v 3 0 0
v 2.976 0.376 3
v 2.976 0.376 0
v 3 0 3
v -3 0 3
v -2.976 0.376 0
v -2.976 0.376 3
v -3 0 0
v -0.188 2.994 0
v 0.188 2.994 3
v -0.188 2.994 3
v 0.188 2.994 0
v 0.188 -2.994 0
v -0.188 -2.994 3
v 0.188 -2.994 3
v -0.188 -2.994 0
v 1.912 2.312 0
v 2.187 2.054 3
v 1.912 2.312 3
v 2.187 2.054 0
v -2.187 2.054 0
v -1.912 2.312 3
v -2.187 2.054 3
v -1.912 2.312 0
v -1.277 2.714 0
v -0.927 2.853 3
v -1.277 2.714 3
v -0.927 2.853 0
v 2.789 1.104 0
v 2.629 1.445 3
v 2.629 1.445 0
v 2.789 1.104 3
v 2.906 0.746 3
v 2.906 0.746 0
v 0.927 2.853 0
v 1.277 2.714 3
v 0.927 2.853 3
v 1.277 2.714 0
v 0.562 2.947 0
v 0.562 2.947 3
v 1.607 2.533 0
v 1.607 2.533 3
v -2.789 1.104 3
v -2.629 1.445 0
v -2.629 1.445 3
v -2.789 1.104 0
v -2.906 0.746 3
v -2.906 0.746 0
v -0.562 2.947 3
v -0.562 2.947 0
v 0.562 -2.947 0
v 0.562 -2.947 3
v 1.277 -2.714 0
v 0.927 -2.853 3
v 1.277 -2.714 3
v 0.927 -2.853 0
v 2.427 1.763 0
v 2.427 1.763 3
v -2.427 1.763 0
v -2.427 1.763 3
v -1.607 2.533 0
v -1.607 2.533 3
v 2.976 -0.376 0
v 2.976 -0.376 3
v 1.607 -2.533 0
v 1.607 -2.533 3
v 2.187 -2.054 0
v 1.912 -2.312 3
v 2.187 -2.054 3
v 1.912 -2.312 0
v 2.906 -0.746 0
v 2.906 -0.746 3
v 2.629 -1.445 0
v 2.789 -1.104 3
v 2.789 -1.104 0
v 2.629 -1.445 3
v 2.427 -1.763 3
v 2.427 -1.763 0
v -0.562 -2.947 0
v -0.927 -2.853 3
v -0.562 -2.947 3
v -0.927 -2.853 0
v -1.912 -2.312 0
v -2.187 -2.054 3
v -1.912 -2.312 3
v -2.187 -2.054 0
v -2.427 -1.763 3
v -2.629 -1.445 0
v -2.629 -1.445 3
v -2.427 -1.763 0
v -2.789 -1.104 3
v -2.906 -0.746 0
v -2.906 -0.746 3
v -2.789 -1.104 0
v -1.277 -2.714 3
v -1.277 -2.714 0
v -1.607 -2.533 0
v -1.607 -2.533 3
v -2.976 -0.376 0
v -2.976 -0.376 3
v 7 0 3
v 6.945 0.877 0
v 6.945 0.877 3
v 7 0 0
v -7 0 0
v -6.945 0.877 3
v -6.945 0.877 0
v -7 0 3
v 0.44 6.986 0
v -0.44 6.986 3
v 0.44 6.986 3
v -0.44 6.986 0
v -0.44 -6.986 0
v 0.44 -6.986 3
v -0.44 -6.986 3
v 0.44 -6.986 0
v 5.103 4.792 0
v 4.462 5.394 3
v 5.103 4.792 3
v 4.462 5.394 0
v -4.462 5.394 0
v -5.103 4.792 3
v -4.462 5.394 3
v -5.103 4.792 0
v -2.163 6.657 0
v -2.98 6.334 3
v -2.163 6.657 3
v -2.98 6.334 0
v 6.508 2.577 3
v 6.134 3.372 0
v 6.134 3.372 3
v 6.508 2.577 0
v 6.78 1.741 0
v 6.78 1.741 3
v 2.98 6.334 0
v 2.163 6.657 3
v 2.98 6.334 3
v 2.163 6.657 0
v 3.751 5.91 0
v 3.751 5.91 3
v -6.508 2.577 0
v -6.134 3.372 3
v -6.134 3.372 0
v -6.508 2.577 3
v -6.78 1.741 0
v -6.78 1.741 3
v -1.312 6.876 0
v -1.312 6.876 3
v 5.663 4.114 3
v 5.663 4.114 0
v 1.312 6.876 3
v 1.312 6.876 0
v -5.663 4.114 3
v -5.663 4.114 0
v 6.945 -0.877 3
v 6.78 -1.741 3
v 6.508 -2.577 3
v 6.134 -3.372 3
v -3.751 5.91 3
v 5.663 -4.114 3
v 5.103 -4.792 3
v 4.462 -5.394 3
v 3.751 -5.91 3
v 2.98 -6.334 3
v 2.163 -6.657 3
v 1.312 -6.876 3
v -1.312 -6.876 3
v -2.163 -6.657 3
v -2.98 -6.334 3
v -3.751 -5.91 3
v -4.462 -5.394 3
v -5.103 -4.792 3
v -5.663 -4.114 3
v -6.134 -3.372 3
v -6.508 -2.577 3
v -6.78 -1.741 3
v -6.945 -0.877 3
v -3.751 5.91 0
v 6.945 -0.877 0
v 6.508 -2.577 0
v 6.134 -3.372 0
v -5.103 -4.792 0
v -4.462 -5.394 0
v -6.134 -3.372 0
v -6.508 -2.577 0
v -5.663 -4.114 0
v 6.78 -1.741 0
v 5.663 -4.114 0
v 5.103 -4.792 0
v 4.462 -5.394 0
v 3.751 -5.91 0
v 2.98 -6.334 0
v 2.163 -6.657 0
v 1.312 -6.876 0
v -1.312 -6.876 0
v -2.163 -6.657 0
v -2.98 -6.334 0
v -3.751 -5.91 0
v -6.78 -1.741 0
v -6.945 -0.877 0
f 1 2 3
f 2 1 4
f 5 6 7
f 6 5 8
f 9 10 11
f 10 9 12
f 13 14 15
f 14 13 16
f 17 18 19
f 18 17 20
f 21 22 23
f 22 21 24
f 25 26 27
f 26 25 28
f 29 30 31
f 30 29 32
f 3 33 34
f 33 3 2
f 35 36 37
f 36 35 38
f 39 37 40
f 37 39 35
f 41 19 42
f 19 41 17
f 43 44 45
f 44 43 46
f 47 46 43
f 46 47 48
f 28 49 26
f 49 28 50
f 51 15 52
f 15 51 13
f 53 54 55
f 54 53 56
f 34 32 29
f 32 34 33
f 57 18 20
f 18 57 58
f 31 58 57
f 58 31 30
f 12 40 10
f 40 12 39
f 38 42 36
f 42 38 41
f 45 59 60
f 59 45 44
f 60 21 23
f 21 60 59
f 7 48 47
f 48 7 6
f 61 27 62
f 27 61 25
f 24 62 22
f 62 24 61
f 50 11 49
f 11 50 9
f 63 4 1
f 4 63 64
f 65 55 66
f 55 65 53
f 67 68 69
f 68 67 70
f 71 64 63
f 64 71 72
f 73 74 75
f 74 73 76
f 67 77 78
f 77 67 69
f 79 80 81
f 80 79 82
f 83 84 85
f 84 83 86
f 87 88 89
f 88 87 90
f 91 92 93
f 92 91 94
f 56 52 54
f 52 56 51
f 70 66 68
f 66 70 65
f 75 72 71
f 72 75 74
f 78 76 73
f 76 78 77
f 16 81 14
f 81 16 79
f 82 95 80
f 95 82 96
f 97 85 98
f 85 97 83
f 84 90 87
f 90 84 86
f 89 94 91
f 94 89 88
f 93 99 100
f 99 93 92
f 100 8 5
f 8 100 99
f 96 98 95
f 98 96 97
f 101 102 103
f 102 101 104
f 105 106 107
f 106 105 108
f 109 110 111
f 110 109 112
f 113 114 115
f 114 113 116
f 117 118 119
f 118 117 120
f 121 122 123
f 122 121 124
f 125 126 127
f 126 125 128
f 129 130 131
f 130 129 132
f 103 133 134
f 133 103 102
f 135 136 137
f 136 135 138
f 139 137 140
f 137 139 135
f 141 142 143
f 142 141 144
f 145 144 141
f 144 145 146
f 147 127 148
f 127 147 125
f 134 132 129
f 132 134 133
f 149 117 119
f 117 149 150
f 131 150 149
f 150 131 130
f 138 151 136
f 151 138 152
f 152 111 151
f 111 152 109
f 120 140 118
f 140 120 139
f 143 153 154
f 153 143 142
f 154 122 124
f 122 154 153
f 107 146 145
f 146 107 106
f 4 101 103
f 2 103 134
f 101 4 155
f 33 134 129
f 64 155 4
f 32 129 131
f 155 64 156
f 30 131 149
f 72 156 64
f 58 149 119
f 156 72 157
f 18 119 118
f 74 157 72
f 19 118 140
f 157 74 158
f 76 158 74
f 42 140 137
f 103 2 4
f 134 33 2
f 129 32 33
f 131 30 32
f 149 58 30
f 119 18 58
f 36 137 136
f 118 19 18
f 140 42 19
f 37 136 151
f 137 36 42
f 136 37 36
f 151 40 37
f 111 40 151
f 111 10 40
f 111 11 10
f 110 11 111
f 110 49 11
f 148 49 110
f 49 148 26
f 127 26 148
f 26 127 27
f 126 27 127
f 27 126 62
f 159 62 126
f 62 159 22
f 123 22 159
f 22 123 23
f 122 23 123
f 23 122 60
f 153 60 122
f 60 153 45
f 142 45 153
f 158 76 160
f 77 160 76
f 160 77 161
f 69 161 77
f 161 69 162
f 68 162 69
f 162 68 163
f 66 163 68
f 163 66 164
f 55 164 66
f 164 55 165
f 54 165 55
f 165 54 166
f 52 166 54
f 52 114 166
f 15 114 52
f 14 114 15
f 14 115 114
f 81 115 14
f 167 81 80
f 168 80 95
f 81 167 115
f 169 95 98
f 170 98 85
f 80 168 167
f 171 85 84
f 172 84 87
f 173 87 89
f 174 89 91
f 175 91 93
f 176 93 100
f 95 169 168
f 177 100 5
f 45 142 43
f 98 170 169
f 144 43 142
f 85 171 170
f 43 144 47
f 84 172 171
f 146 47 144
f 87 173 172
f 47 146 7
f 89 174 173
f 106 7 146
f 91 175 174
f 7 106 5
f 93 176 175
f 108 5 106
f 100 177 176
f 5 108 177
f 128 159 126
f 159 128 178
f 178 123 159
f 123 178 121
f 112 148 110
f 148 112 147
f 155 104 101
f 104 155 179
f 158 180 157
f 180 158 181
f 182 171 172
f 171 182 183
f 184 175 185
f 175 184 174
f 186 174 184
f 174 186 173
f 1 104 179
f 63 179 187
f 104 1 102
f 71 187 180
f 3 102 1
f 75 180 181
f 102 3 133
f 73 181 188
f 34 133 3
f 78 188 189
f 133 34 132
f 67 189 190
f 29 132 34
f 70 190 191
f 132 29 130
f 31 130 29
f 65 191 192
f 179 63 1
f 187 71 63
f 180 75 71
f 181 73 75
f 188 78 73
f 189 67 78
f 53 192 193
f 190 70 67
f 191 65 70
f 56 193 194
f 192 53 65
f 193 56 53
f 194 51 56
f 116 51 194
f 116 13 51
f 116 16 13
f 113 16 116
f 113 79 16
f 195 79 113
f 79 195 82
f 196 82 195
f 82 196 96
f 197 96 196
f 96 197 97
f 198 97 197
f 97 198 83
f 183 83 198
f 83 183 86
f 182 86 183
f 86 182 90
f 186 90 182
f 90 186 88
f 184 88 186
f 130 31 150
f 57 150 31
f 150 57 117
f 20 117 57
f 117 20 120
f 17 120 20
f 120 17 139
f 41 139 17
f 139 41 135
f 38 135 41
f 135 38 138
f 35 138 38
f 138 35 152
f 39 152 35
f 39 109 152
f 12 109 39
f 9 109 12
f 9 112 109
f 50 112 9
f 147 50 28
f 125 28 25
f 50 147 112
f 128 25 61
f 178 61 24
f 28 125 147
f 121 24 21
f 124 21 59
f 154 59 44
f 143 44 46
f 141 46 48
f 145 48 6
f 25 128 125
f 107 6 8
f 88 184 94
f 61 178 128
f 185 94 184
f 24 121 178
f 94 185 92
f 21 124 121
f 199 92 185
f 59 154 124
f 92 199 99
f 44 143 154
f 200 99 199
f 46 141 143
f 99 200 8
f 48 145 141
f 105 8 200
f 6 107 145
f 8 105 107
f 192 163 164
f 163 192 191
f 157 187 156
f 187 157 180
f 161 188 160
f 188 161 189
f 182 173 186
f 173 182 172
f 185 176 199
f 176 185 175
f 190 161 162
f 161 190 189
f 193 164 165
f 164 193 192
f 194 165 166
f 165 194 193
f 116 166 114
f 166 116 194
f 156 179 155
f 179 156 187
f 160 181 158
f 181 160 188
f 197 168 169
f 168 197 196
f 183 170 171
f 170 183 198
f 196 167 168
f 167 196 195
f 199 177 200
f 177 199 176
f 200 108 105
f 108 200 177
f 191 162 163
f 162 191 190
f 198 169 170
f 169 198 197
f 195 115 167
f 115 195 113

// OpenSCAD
$fn = 50;


difference() {
	union() {
		cylinder(h = 3, r = 7.0000000000);
	}
	union() {
		#translate(v = [0.0000000000, 0.0000000000, -100.0000000000]) {
			cylinder(h = 200, r = 3.0000000000);
		}
		#translate(v = [0.0000000000, 0.0000000000, -100.0000000000]) {
			cylinder(h = 200, r = 3.0000000000);
		}
		#translate(v = [0.0000000000, 0.0000000000, -100.0000000000]) {
			cylinder(h = 200, r = 3.0000000000);
		}
		#translate(v = [0.0000000000, 0.0000000000, -100.0000000000]) {
			cylinder(h = 200, r = 3.0000000000);
		}
		#cylinder(h = 3, r = 2.0000000000);
	}
}
